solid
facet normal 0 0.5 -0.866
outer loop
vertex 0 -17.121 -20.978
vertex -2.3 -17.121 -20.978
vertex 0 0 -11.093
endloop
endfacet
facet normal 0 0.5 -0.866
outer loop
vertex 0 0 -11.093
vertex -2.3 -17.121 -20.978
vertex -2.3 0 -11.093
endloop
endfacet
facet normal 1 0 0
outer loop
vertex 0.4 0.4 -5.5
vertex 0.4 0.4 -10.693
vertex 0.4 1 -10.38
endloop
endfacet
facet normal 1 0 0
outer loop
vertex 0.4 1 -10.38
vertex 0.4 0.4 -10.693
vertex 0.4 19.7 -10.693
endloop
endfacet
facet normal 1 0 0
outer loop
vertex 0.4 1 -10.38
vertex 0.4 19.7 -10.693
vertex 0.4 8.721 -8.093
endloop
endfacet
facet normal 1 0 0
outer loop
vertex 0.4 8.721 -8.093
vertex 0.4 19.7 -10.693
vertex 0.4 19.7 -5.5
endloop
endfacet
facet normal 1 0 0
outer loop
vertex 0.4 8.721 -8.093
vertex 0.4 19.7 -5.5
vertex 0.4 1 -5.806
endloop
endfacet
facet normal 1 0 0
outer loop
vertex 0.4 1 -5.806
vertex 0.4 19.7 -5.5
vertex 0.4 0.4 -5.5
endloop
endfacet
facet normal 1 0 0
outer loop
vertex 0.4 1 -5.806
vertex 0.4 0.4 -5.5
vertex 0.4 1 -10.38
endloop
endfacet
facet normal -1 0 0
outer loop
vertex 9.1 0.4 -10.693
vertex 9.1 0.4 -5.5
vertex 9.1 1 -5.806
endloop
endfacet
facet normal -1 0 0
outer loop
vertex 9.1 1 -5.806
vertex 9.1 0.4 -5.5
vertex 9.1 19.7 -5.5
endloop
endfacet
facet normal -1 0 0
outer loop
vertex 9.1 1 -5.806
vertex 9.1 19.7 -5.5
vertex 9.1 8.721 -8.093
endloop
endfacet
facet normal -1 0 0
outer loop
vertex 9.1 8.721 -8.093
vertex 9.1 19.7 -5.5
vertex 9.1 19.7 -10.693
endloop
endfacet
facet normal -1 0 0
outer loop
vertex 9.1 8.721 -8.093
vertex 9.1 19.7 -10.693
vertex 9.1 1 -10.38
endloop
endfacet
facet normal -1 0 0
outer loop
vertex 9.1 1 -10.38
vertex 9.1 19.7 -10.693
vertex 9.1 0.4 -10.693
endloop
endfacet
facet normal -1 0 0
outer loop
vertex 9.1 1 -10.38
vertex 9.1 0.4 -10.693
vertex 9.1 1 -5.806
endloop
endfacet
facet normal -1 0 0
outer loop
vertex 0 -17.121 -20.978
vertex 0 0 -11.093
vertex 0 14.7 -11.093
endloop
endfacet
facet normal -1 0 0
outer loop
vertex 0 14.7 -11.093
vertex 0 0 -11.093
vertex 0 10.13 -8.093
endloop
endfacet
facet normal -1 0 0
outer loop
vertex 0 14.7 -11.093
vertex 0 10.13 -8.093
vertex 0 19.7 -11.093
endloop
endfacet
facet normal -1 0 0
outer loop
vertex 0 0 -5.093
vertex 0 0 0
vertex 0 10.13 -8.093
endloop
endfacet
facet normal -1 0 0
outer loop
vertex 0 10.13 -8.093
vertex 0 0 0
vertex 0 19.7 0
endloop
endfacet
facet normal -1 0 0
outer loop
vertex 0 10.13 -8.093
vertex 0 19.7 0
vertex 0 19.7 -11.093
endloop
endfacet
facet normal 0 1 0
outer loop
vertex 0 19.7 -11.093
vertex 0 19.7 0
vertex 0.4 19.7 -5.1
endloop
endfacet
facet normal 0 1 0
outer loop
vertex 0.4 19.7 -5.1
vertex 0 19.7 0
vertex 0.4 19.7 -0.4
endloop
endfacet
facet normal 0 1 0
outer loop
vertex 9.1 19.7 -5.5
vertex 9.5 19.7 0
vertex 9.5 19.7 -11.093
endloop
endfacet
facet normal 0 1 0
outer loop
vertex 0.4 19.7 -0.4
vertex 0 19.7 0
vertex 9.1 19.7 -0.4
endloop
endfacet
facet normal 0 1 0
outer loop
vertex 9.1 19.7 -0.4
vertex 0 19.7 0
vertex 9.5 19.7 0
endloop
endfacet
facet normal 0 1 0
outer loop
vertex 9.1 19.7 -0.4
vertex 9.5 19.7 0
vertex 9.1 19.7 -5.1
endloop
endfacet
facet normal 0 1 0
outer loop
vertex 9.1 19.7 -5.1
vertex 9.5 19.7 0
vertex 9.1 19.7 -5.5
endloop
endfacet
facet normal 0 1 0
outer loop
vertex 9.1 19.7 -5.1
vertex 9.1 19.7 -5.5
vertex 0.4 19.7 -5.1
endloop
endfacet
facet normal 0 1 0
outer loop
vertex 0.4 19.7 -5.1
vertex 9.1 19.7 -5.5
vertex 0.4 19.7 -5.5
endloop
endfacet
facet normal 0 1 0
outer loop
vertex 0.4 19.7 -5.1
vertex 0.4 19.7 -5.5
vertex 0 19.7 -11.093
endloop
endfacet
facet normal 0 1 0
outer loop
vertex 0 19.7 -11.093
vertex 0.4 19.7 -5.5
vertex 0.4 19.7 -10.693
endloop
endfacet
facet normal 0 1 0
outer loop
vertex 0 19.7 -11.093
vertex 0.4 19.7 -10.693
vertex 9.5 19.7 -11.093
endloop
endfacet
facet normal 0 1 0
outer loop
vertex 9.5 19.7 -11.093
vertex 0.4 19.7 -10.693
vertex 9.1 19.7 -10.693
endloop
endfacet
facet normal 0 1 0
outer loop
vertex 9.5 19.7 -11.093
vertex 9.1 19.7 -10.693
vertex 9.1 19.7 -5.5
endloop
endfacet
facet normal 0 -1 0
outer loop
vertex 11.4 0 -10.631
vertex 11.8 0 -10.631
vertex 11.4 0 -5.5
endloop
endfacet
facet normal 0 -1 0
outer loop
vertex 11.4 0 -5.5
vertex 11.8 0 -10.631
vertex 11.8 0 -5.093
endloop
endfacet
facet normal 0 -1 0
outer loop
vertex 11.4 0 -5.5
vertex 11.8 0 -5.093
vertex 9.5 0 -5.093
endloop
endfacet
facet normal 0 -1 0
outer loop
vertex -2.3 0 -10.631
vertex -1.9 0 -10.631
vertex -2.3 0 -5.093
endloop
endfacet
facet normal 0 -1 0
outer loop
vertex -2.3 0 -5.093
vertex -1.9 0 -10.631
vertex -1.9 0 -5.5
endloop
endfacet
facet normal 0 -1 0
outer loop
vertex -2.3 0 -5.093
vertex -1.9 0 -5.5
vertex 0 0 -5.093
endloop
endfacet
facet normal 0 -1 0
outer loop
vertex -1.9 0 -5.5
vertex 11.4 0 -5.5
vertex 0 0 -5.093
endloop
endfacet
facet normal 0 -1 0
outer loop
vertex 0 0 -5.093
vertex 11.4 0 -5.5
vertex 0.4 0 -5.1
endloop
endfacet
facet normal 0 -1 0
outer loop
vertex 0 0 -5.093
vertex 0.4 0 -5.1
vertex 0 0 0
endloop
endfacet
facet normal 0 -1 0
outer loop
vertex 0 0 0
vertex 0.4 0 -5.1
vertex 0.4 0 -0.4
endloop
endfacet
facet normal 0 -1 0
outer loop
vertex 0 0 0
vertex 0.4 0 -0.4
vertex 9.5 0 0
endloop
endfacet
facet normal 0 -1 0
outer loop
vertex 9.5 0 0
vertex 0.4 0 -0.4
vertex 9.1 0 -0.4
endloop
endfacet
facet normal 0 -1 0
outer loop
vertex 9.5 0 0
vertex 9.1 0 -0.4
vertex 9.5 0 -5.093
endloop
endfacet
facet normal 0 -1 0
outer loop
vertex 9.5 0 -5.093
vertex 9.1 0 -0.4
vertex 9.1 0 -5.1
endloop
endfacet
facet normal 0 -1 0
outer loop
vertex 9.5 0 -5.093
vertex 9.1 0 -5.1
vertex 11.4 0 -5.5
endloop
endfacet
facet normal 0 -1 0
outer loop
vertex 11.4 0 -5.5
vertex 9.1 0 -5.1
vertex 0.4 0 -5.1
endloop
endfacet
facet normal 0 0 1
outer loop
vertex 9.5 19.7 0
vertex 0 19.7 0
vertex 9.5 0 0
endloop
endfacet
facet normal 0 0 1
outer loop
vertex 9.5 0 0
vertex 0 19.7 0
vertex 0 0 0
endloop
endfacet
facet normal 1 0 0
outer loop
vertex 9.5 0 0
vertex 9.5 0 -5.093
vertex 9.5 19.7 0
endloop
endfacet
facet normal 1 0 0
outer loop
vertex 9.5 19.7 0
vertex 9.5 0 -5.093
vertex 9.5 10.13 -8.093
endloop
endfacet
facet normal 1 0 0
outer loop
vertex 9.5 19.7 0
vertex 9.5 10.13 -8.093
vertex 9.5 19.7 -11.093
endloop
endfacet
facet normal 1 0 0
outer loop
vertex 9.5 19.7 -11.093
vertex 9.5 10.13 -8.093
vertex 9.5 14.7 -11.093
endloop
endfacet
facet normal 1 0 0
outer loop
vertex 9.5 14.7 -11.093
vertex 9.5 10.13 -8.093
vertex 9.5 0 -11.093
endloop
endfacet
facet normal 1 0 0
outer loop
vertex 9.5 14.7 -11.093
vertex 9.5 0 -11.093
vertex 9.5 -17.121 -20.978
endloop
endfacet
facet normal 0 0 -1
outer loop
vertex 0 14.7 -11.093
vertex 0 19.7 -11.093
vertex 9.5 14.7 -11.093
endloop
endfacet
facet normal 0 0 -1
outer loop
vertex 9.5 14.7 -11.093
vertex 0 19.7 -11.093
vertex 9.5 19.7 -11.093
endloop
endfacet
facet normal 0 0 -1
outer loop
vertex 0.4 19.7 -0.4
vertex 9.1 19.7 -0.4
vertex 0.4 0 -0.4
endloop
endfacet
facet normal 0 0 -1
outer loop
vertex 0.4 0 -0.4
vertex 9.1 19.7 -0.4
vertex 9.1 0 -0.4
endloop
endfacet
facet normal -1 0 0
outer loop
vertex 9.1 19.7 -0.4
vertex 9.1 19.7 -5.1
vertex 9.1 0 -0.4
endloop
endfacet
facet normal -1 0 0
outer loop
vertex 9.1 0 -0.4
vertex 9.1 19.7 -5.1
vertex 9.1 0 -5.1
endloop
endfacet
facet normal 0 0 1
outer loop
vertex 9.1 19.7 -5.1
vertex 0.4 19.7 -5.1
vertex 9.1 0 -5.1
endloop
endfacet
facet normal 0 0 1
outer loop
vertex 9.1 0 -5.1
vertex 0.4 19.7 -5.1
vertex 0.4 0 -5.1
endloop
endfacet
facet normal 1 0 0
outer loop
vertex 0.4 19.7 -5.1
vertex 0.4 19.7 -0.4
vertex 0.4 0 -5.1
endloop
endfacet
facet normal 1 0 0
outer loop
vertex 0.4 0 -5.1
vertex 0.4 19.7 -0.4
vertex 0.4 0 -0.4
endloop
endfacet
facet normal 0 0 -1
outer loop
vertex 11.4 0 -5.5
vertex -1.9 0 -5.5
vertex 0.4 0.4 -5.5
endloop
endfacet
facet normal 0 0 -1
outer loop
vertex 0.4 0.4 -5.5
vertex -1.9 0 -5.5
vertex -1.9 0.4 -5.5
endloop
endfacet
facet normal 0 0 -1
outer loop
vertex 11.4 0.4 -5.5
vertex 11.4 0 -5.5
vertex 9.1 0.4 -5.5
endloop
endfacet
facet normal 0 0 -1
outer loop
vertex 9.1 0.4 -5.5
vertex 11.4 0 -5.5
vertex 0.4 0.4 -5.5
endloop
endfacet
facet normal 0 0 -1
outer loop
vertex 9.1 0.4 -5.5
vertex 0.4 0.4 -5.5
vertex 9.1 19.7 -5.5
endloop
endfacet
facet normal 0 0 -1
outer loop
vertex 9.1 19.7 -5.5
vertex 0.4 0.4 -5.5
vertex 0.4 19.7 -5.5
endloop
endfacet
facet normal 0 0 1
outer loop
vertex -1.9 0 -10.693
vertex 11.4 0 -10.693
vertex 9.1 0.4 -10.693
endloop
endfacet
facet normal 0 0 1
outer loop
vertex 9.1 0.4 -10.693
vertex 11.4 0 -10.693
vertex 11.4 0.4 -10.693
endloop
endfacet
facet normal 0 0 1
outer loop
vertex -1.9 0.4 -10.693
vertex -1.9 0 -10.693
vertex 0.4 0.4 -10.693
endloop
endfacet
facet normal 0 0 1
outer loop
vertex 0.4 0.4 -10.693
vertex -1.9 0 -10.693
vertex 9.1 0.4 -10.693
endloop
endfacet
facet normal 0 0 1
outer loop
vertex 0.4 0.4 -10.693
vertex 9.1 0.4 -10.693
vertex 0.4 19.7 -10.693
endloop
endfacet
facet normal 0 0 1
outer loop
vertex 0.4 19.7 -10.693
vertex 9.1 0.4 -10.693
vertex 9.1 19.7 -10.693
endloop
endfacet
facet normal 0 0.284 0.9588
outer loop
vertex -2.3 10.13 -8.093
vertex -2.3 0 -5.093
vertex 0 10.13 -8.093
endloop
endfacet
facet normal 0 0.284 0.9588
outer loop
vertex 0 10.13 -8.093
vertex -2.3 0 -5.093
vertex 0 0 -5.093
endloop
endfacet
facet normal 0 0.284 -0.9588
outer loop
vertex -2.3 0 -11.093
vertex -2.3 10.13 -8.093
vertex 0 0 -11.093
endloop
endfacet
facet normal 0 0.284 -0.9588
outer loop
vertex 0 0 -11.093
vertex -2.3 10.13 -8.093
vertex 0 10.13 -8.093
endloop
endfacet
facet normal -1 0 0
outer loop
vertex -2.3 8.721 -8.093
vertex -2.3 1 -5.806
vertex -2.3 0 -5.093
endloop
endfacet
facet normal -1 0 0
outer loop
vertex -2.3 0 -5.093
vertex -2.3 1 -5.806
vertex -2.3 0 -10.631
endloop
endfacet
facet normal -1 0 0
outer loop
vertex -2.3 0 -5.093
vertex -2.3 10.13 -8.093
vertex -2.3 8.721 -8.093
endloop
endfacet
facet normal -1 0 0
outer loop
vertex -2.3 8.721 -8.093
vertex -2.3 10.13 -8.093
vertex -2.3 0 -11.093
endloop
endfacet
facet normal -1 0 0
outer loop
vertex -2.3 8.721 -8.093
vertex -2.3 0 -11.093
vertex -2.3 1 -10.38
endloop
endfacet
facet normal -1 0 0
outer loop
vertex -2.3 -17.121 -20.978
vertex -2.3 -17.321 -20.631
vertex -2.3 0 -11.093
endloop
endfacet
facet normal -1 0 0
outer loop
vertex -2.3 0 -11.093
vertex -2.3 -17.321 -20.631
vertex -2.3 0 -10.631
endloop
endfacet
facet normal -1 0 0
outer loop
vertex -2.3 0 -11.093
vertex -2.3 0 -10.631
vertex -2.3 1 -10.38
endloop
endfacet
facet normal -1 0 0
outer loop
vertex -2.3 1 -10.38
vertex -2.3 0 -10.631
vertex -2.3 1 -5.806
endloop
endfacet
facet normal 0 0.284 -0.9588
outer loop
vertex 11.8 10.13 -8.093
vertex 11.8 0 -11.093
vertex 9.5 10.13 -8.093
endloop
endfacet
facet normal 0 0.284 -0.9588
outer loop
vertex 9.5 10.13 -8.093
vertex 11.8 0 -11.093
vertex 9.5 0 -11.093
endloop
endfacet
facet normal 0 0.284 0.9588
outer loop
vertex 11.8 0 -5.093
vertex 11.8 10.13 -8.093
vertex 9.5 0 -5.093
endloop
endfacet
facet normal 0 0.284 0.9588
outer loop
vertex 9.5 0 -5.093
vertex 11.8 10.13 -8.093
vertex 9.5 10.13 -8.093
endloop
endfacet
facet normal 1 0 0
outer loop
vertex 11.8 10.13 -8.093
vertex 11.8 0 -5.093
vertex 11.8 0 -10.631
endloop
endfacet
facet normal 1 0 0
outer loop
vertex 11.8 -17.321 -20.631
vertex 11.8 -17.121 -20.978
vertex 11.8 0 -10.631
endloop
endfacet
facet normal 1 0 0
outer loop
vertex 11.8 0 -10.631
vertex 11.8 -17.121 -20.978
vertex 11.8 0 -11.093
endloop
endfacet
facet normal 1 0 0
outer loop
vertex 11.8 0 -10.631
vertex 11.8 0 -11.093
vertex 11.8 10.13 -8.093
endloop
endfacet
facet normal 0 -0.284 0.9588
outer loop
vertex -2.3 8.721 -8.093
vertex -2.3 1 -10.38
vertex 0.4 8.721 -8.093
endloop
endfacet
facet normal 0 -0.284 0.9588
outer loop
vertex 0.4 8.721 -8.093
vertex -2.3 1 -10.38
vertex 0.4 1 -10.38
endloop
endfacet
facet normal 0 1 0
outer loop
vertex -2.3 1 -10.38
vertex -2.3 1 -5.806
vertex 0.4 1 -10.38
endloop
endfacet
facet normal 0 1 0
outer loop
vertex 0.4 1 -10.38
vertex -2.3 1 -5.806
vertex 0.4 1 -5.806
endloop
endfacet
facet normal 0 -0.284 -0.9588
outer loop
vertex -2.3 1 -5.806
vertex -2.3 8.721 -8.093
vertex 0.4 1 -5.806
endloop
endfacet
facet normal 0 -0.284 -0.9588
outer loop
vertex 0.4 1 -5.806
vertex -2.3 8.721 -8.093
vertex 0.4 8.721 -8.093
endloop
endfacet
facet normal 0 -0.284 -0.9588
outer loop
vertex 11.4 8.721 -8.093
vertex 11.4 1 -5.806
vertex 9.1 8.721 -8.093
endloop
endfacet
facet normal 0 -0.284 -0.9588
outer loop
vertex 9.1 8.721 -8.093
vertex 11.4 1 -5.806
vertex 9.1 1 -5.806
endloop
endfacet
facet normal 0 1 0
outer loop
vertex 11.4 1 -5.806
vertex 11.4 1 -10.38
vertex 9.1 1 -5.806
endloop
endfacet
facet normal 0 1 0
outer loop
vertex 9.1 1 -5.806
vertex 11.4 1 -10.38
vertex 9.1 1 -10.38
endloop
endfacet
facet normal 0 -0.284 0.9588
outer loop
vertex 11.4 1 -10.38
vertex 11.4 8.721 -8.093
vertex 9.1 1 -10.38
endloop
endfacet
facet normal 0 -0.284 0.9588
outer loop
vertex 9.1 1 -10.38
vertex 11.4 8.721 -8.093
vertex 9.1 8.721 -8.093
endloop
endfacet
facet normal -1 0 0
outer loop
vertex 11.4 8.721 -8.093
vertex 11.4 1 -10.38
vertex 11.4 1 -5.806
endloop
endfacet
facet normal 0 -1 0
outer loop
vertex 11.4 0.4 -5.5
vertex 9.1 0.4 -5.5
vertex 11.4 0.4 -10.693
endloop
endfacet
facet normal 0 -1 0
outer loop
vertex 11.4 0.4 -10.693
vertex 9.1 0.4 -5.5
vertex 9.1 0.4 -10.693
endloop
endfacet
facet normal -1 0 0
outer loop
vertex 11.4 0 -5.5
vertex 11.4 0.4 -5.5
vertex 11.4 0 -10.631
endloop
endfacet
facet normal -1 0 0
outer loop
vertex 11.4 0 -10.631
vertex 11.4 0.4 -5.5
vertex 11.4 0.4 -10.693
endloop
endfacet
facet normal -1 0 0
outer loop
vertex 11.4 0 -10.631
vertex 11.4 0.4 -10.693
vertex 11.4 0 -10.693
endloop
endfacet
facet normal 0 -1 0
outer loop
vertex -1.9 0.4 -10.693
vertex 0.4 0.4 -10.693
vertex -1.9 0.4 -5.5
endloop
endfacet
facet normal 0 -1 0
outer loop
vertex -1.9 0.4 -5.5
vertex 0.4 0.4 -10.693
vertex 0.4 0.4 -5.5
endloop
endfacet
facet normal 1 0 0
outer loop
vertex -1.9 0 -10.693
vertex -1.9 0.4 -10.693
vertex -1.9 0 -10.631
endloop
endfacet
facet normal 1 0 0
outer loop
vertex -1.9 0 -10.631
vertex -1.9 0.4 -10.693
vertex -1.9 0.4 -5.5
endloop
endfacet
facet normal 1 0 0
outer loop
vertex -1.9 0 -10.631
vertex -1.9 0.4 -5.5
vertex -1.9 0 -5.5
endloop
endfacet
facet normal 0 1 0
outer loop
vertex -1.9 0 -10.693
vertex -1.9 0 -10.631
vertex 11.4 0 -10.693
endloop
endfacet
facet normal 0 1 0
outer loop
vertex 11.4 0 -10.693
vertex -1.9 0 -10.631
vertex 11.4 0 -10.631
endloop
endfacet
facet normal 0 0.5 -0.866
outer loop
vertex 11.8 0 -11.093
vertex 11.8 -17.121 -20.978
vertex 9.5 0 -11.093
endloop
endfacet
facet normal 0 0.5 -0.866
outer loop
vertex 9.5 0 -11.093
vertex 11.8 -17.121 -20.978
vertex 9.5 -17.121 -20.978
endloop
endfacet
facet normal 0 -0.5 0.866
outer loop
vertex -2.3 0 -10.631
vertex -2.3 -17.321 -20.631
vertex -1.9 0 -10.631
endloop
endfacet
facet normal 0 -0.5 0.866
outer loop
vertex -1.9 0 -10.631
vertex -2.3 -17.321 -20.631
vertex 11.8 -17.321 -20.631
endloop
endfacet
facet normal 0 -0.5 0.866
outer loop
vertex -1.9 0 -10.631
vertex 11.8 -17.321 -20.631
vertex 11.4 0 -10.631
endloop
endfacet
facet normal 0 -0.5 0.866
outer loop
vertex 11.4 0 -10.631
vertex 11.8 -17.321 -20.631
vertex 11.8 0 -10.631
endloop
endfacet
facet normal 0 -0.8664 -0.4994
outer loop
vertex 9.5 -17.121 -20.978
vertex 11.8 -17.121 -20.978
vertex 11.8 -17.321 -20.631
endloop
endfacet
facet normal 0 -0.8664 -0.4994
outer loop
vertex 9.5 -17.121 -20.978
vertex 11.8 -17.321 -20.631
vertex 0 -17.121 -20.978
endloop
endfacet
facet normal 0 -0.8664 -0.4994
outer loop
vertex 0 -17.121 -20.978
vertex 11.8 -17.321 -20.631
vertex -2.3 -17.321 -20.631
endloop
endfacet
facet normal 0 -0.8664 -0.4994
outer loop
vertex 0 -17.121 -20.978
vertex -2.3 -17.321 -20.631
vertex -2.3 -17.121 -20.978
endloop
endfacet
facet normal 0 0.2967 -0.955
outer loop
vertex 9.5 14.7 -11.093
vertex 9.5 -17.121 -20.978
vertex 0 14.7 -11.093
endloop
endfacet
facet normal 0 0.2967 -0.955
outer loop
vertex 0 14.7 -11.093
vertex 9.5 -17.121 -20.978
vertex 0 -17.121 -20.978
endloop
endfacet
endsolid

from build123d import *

# Parameters (mm, degrees)
SKIZZE1_W                       = 9.5
SKIZZE1_H                       = 11.093
SKIZZE1_W_2                     = 8.7
SKIZZE1_H_2                     = 4.7
SKIZZE1_H_3                     = 5.193
AUFSATZ_LINEAR_AUSTRAGEN1_DEPTH = 19.7
AUFSATZ_LINEAR_AUSTRAGEN2_DEPTH = 2.3
SCHNITT_LINEAR_AUSTRAGEN1_DEPTH = 13.7
SKIZZE4_W                       = 13.3
SKIZZE4_H                       = 5.193
SCHNITT_LINEAR_AUSTRAGEN2_DEPTH = 0.4
AUFSATZ_LINEAR_AUSTRAGEN3_DEPTH = 14.1
AUFSATZ_LINEAR_START            = -9.5
AUFSATZ_LINEAR_AUSTRAGEN4_DEPTH = 9.5


with BuildPart() as part:
    # Skizze1 → Aufsatz-Linear austragen1 (new body)
    with BuildSketch(Plane(origin=(0, 0, 0), x_dir=(1, 0, 0), z_dir=(0, 1, 0))):
        with Locations((4.75, 5.5465)):
            Rectangle(SKIZZE1_W, SKIZZE1_H)
        with Locations((4.75, 2.75)):
            Rectangle(SKIZZE1_W_2, SKIZZE1_H_2, mode=Mode.SUBTRACT)
        with Locations((4.75, 8.0965)):
            Rectangle(SKIZZE1_W_2, SKIZZE1_H_3, mode=Mode.SUBTRACT)
    extrude(amount=AUFSATZ_LINEAR_AUSTRAGEN1_DEPTH)

    # Skizze2 → Aufsatz-Linear austragen2 (add)
    with BuildSketch(Plane.ZY):
        Polygon((-11.093, 0), (-8.093, 10.13), (-5.093, 0), align=None)
    aufsatz_linear_austragen2 = extrude(amount=AUFSATZ_LINEAR_AUSTRAGEN2_DEPTH)

    # Spiegeln1: Aufsatz-Linear austragen2 across plane
    add(aufsatz_linear_austragen2.mirror(Plane(origin=(4.75, 0, 0), x_dir=(0, 0, 1), z_dir=(1, 0, 0))))

    # Skizze3 → Schnitt-Linear austragen1 (cut)
    with BuildSketch(Plane.ZY.offset(2.3)):
        Polygon((-10.379677593, 1), (-5.806322407, 1), (-8.093, 8.721348004), align=None)
    extrude(amount=-SCHNITT_LINEAR_AUSTRAGEN1_DEPTH, mode=Mode.SUBTRACT)

    # Skizze4 → Schnitt-Linear austragen2 (cut)
    with BuildSketch(Plane.XZ):
        with Locations((4.75, -8.0965)):
            Rectangle(SKIZZE4_W, SKIZZE4_H)
    extrude(amount=-SCHNITT_LINEAR_AUSTRAGEN2_DEPTH, mode=Mode.SUBTRACT)

    # Skizze5 → Aufsatz-Linear austragen3 (add)
    with BuildSketch(Plane.ZY.offset(2.3)):
        Polygon((-20.977529946, -17.120508076), (-20.631119785, -17.320508076), (-10.631119785, 0), (-11.093, 0), align=None)
    extrude(amount=-AUFSATZ_LINEAR_AUSTRAGEN3_DEPTH)

    # Skizze6 → Aufsatz-Linear austragen4 (add)
    with BuildSketch(Plane.ZY.offset(AUFSATZ_LINEAR_START)):
        Polygon((-20.977529946, -17.120508076), (-11.093, 0), (-11.093, 14.7), align=None)
    extrude(amount=AUFSATZ_LINEAR_AUSTRAGEN4_DEPTH)


solid = part.part
